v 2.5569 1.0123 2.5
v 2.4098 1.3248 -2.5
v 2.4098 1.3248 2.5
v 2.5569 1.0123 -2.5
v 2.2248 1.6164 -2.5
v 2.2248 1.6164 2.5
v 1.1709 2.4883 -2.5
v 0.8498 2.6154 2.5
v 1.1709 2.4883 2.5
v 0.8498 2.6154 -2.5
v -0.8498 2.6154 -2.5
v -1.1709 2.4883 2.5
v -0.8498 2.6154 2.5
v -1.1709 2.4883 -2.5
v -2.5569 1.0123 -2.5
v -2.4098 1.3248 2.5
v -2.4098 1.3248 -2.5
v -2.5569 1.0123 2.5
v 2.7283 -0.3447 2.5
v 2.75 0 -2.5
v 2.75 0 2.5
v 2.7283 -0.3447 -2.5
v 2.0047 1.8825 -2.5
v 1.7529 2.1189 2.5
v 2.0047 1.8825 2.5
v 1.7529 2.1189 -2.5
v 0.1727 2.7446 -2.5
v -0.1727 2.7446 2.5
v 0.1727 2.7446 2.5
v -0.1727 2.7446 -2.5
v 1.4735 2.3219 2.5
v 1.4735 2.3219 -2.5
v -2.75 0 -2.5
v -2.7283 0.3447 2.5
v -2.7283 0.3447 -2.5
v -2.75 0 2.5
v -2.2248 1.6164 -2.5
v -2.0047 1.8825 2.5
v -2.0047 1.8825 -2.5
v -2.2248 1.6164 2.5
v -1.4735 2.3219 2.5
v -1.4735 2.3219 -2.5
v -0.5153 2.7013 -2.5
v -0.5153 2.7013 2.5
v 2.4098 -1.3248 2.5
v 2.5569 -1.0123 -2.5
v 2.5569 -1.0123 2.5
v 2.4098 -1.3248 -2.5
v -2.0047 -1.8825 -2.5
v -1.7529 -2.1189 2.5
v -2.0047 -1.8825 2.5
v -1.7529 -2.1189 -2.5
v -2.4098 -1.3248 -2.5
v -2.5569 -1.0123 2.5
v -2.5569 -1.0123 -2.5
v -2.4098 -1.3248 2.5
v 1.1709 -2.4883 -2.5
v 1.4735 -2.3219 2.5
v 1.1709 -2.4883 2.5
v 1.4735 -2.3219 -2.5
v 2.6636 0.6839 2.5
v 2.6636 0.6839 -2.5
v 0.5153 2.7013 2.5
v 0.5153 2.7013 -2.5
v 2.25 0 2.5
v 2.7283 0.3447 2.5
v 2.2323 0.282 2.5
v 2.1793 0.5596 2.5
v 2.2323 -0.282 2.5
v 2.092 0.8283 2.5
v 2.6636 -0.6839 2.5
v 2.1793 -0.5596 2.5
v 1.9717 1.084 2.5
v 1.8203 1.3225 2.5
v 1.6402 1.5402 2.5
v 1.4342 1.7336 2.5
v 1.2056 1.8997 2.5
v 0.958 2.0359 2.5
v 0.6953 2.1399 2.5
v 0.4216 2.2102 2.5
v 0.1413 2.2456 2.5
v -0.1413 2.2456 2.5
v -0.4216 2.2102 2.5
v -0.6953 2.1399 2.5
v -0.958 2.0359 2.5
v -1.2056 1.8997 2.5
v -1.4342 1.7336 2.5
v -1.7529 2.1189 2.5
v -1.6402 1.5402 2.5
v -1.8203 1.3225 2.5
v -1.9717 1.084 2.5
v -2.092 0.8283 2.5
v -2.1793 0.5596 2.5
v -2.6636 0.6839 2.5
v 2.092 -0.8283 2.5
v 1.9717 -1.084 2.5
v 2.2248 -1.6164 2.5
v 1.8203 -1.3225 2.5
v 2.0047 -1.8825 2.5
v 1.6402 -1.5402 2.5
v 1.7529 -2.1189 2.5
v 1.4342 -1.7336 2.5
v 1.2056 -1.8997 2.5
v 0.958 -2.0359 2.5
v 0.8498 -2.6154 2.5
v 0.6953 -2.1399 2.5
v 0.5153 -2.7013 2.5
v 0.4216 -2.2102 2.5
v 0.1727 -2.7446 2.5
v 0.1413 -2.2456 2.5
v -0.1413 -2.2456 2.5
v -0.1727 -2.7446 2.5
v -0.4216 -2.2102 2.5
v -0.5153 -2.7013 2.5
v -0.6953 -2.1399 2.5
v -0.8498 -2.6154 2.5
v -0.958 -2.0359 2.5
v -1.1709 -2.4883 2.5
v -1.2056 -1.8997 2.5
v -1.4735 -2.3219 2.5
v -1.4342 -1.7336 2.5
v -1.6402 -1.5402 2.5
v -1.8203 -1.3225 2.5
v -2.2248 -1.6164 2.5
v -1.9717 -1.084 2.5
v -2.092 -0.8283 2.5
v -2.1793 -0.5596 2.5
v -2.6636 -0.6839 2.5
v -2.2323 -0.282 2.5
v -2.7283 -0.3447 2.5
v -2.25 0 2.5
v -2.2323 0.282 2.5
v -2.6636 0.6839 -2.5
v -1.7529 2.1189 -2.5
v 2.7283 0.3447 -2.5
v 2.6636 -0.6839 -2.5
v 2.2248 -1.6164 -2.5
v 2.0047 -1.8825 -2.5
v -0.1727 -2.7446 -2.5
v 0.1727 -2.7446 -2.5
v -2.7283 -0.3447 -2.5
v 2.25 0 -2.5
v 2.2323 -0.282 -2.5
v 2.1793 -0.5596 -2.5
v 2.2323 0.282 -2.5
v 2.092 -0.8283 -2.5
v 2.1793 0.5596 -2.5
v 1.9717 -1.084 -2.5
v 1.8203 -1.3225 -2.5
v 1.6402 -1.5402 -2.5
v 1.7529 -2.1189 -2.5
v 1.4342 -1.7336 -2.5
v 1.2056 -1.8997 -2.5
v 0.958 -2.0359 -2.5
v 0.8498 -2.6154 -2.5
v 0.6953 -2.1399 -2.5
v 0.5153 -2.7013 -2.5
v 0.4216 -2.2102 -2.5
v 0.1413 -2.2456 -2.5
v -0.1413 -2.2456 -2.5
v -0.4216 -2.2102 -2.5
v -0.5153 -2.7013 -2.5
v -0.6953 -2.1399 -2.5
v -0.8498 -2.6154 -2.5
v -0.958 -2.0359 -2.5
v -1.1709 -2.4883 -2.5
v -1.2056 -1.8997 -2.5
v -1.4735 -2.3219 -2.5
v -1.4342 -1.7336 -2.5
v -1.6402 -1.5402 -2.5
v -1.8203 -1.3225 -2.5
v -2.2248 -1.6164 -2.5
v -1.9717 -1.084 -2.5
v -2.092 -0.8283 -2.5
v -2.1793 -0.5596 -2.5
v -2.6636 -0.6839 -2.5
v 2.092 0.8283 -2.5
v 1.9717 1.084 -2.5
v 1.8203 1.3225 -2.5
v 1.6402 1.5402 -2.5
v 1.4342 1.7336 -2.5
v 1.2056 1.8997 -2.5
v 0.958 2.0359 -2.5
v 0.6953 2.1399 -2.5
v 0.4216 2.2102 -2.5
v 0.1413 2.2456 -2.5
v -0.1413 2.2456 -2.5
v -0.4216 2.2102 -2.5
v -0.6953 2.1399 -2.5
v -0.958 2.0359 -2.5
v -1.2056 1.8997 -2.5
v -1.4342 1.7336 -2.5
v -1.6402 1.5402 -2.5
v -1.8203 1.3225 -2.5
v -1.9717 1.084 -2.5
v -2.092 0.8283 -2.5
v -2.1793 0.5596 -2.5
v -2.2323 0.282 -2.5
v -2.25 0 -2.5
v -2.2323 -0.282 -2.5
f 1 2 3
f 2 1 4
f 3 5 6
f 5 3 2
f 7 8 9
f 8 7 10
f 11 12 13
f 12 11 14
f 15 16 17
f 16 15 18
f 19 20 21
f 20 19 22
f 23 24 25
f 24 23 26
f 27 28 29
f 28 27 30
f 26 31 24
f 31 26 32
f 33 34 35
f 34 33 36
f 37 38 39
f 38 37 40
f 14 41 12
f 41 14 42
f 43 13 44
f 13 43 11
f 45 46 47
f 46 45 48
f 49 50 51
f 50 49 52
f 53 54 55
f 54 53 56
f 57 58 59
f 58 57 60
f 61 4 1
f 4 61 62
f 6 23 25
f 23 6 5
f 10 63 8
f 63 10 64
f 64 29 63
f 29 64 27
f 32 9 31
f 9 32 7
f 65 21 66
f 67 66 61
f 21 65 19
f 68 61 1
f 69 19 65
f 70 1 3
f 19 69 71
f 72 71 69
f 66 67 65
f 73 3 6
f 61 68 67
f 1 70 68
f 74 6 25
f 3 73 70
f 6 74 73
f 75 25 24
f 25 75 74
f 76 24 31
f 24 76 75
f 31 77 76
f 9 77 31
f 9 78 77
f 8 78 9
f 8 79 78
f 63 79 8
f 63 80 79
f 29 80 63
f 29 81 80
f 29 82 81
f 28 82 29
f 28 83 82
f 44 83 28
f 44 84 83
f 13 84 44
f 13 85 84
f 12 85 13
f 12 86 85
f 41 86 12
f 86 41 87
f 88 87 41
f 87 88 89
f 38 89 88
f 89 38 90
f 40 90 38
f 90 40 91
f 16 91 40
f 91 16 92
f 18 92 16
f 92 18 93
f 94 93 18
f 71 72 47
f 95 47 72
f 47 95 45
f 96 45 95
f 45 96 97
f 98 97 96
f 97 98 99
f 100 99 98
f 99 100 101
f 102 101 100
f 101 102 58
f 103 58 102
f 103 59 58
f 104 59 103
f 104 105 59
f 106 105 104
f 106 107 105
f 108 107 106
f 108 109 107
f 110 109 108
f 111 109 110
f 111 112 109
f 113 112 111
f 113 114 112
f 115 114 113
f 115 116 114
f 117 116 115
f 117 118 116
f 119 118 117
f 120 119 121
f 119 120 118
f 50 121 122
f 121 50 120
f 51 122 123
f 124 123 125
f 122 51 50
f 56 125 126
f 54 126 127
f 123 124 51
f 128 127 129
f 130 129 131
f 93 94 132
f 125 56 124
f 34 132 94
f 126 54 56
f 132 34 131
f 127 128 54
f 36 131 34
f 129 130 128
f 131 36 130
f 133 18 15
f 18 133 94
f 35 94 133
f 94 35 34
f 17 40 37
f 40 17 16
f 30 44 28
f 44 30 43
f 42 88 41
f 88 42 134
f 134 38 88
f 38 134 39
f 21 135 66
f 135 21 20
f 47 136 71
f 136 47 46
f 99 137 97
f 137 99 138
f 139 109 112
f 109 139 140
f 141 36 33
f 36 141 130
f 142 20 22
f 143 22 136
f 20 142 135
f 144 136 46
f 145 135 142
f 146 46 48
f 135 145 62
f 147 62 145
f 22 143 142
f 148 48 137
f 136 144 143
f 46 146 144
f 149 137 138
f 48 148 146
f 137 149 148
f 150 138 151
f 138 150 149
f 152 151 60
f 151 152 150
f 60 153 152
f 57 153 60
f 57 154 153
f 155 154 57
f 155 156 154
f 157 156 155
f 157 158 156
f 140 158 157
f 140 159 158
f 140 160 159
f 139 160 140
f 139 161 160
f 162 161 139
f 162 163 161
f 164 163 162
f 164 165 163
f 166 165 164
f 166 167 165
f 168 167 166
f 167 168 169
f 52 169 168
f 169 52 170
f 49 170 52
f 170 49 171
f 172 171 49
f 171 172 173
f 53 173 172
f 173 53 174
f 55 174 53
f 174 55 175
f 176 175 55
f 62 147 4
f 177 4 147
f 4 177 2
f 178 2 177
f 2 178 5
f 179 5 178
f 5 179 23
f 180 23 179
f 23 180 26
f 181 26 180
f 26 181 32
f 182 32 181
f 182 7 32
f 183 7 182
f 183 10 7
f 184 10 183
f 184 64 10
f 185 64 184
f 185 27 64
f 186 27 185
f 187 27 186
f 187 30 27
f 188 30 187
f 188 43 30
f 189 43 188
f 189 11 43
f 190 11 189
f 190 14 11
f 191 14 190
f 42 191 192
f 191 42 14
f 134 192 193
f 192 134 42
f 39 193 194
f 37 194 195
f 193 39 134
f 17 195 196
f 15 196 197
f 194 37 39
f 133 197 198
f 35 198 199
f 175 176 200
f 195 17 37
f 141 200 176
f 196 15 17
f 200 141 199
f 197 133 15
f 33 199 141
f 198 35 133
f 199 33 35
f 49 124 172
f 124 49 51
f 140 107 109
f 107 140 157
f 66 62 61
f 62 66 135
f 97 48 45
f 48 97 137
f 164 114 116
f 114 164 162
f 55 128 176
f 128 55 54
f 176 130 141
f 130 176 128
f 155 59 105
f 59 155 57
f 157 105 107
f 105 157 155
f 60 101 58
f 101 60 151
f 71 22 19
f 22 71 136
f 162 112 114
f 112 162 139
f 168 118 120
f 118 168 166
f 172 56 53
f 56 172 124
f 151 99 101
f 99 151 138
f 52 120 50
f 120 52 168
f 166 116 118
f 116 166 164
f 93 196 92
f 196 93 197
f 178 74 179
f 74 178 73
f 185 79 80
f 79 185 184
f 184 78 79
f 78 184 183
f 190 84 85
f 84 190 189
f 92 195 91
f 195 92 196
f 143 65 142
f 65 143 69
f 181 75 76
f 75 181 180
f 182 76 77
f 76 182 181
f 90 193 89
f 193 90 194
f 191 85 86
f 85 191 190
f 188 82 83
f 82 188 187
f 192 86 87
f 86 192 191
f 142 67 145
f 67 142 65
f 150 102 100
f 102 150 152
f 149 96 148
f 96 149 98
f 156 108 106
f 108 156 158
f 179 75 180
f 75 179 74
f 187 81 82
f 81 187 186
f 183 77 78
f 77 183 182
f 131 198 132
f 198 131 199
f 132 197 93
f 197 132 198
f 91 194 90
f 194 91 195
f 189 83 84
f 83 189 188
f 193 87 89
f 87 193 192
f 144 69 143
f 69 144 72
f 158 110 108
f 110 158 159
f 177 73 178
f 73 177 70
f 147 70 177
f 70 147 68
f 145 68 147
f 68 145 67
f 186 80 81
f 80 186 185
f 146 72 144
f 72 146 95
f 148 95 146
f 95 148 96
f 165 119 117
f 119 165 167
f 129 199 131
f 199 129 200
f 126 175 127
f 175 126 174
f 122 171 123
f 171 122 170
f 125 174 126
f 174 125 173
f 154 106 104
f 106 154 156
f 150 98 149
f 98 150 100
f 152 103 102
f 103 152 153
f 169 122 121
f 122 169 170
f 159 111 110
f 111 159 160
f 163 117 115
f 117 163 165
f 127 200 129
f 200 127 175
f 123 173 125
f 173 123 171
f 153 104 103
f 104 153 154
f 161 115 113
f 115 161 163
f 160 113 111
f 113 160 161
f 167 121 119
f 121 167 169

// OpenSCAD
$fn = 50;


difference() {
	union() {
		translate(v = [0, 0, -2.5000000000]) {
			cylinder(h = 5, r = 2.7500000000);
		}
	}
	union() {
		translate(v = [0, 0, -100.0000000000]) {
			cylinder(h = 200, r = 2.2500000000);
		}
	}
}
